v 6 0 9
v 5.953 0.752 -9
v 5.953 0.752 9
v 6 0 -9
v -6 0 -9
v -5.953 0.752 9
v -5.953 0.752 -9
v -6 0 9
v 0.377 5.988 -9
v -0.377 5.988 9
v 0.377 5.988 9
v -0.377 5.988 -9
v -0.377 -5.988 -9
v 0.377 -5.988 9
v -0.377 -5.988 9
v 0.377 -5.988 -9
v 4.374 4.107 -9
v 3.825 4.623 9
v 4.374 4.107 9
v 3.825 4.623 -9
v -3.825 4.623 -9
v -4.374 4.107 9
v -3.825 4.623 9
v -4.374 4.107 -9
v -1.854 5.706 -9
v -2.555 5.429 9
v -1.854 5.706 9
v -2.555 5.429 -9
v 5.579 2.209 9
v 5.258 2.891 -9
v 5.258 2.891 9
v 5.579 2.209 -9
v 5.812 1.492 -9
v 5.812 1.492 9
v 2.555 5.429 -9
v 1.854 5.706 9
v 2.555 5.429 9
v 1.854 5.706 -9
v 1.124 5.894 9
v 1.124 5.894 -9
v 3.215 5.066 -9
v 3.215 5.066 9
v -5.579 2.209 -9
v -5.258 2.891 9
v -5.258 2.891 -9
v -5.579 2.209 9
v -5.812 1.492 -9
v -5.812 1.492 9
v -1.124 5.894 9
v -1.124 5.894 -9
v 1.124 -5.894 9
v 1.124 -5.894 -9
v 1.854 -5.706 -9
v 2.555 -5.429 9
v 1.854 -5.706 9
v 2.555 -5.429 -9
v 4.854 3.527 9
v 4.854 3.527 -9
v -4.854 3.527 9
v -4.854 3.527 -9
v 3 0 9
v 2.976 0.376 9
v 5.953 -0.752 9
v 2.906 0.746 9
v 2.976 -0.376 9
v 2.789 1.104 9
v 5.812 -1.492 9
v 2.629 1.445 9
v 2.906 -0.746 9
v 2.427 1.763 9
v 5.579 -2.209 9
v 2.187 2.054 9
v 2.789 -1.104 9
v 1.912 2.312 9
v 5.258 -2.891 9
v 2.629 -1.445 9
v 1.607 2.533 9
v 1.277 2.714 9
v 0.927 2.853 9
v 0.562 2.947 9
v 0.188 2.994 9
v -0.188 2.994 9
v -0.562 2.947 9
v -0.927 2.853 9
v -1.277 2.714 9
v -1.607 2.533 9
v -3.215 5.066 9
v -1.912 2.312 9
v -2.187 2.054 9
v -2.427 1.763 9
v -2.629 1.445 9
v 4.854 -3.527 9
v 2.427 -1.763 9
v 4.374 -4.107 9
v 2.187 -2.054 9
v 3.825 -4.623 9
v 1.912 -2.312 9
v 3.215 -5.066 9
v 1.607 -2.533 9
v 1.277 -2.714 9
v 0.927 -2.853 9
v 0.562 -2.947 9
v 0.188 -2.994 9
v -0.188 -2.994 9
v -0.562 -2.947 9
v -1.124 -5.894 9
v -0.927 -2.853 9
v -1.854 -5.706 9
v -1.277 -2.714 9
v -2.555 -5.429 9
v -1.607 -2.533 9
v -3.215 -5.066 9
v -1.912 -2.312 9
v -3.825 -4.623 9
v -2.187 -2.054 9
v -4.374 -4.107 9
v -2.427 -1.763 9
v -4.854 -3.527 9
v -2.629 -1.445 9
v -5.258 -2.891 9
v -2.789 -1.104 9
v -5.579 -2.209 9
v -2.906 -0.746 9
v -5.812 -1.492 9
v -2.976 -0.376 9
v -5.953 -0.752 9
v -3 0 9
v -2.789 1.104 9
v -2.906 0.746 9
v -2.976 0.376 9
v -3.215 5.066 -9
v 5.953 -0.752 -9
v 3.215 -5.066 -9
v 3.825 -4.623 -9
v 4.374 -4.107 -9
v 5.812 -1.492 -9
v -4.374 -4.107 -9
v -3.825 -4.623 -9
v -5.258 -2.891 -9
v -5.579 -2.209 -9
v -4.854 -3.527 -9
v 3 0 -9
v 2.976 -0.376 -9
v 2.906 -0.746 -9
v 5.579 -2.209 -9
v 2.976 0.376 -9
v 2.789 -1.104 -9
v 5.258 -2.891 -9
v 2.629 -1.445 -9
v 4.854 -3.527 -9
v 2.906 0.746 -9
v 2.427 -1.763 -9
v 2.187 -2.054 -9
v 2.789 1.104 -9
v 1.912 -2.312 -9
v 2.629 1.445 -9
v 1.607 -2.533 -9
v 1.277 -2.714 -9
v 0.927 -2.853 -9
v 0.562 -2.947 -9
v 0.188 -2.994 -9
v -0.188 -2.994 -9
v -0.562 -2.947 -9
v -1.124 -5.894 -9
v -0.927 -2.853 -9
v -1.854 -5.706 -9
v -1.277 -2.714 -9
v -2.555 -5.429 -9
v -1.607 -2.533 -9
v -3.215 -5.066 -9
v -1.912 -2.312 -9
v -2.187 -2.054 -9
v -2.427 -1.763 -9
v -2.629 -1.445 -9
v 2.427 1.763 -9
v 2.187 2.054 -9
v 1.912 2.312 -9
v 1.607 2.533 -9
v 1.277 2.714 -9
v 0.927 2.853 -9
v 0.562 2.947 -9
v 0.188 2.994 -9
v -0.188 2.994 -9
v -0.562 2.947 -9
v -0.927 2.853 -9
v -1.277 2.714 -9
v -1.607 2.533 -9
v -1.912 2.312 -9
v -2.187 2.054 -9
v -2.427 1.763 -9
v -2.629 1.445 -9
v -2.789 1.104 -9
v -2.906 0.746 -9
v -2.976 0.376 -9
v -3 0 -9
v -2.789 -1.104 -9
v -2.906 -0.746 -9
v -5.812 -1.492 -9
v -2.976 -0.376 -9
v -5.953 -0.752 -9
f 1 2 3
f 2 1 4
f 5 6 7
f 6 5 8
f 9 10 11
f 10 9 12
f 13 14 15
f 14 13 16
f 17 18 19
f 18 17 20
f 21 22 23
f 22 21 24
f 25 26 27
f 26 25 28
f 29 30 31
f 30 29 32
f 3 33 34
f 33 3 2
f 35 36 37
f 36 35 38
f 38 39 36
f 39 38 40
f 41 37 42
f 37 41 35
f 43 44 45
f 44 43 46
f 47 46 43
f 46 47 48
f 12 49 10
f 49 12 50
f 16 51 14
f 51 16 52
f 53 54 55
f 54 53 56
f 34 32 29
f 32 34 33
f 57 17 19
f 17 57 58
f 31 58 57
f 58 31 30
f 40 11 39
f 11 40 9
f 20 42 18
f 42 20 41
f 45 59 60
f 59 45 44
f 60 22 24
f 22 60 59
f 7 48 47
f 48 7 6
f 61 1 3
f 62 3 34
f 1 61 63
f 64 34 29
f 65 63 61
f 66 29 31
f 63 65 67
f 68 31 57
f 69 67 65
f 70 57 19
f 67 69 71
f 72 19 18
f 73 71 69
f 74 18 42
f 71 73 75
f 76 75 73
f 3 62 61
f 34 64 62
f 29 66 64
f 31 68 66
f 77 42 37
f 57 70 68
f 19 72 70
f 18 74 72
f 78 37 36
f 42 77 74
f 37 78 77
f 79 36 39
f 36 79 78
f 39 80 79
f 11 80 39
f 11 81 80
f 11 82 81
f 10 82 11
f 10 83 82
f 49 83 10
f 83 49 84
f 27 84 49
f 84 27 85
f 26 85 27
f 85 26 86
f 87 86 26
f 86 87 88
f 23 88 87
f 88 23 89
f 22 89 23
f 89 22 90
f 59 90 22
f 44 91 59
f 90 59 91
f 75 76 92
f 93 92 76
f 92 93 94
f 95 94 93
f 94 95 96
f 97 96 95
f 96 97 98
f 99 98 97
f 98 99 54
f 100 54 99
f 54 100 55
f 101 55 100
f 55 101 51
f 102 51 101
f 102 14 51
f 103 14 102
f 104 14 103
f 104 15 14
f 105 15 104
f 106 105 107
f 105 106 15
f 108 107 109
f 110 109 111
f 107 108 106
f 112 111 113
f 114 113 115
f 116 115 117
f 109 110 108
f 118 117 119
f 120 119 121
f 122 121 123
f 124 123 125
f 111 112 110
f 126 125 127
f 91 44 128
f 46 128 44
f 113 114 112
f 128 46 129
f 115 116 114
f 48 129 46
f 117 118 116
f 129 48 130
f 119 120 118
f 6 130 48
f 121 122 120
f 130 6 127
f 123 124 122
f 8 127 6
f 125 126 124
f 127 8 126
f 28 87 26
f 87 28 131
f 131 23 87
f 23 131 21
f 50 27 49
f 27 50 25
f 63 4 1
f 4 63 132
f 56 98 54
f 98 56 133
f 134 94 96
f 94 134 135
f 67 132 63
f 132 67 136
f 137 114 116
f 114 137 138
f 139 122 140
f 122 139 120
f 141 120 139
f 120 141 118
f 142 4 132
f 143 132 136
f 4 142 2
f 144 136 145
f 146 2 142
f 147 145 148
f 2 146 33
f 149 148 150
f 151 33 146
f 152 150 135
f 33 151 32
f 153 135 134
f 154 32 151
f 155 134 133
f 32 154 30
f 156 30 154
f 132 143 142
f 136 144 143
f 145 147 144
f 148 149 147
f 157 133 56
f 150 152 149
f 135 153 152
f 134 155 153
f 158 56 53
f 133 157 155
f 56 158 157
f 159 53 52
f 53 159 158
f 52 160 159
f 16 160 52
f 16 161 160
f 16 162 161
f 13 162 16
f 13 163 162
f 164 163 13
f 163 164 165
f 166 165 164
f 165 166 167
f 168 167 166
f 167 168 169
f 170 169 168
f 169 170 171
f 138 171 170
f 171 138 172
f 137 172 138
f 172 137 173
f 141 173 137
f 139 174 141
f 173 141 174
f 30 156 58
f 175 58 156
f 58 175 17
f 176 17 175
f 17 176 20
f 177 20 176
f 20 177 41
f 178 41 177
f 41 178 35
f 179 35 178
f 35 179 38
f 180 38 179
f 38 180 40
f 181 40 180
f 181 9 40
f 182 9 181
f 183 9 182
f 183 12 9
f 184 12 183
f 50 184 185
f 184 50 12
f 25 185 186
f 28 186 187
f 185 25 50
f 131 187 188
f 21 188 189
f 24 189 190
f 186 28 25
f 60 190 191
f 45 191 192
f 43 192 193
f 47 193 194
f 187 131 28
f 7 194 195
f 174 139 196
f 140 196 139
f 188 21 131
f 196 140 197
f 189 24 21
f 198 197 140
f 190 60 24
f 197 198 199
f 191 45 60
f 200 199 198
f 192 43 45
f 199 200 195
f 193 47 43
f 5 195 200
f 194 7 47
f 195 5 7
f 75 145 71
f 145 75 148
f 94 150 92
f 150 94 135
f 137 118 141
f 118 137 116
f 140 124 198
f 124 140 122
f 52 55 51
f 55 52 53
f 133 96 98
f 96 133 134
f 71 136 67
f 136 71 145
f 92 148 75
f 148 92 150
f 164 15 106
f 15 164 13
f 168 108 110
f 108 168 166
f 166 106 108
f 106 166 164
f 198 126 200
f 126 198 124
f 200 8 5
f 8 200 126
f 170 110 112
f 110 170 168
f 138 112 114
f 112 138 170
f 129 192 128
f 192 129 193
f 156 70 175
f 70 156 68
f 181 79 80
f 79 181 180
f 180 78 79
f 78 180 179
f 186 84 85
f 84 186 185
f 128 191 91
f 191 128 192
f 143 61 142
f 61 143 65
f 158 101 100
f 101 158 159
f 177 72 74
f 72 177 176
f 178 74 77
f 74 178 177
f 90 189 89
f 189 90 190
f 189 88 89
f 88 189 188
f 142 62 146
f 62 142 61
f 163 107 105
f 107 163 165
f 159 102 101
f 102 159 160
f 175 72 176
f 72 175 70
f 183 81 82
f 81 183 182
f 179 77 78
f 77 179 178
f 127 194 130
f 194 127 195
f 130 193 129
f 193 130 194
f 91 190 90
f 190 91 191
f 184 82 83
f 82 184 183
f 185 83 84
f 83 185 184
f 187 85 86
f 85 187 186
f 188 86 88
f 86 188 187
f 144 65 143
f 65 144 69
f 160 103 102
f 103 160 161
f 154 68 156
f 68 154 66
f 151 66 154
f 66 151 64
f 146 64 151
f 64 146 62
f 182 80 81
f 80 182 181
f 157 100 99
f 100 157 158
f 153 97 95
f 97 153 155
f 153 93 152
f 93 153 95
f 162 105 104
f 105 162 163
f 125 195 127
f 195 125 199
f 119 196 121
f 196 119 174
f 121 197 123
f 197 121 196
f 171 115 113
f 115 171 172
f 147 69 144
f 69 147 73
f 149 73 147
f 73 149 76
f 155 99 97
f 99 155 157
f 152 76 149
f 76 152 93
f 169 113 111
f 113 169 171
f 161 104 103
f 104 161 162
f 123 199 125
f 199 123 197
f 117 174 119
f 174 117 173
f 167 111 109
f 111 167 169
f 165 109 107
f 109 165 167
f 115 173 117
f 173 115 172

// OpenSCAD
$fn = 50;


difference() {
	union() {
		translate(v = [0, 0, -9.0000000000]) {
			cylinder(h = 18, r = 6.0000000000);
		}
	}
	union() {
		translate(v = [0, 0, -100.0000000000]) {
			cylinder(h = 200, r = 3);
		}
	}
}
